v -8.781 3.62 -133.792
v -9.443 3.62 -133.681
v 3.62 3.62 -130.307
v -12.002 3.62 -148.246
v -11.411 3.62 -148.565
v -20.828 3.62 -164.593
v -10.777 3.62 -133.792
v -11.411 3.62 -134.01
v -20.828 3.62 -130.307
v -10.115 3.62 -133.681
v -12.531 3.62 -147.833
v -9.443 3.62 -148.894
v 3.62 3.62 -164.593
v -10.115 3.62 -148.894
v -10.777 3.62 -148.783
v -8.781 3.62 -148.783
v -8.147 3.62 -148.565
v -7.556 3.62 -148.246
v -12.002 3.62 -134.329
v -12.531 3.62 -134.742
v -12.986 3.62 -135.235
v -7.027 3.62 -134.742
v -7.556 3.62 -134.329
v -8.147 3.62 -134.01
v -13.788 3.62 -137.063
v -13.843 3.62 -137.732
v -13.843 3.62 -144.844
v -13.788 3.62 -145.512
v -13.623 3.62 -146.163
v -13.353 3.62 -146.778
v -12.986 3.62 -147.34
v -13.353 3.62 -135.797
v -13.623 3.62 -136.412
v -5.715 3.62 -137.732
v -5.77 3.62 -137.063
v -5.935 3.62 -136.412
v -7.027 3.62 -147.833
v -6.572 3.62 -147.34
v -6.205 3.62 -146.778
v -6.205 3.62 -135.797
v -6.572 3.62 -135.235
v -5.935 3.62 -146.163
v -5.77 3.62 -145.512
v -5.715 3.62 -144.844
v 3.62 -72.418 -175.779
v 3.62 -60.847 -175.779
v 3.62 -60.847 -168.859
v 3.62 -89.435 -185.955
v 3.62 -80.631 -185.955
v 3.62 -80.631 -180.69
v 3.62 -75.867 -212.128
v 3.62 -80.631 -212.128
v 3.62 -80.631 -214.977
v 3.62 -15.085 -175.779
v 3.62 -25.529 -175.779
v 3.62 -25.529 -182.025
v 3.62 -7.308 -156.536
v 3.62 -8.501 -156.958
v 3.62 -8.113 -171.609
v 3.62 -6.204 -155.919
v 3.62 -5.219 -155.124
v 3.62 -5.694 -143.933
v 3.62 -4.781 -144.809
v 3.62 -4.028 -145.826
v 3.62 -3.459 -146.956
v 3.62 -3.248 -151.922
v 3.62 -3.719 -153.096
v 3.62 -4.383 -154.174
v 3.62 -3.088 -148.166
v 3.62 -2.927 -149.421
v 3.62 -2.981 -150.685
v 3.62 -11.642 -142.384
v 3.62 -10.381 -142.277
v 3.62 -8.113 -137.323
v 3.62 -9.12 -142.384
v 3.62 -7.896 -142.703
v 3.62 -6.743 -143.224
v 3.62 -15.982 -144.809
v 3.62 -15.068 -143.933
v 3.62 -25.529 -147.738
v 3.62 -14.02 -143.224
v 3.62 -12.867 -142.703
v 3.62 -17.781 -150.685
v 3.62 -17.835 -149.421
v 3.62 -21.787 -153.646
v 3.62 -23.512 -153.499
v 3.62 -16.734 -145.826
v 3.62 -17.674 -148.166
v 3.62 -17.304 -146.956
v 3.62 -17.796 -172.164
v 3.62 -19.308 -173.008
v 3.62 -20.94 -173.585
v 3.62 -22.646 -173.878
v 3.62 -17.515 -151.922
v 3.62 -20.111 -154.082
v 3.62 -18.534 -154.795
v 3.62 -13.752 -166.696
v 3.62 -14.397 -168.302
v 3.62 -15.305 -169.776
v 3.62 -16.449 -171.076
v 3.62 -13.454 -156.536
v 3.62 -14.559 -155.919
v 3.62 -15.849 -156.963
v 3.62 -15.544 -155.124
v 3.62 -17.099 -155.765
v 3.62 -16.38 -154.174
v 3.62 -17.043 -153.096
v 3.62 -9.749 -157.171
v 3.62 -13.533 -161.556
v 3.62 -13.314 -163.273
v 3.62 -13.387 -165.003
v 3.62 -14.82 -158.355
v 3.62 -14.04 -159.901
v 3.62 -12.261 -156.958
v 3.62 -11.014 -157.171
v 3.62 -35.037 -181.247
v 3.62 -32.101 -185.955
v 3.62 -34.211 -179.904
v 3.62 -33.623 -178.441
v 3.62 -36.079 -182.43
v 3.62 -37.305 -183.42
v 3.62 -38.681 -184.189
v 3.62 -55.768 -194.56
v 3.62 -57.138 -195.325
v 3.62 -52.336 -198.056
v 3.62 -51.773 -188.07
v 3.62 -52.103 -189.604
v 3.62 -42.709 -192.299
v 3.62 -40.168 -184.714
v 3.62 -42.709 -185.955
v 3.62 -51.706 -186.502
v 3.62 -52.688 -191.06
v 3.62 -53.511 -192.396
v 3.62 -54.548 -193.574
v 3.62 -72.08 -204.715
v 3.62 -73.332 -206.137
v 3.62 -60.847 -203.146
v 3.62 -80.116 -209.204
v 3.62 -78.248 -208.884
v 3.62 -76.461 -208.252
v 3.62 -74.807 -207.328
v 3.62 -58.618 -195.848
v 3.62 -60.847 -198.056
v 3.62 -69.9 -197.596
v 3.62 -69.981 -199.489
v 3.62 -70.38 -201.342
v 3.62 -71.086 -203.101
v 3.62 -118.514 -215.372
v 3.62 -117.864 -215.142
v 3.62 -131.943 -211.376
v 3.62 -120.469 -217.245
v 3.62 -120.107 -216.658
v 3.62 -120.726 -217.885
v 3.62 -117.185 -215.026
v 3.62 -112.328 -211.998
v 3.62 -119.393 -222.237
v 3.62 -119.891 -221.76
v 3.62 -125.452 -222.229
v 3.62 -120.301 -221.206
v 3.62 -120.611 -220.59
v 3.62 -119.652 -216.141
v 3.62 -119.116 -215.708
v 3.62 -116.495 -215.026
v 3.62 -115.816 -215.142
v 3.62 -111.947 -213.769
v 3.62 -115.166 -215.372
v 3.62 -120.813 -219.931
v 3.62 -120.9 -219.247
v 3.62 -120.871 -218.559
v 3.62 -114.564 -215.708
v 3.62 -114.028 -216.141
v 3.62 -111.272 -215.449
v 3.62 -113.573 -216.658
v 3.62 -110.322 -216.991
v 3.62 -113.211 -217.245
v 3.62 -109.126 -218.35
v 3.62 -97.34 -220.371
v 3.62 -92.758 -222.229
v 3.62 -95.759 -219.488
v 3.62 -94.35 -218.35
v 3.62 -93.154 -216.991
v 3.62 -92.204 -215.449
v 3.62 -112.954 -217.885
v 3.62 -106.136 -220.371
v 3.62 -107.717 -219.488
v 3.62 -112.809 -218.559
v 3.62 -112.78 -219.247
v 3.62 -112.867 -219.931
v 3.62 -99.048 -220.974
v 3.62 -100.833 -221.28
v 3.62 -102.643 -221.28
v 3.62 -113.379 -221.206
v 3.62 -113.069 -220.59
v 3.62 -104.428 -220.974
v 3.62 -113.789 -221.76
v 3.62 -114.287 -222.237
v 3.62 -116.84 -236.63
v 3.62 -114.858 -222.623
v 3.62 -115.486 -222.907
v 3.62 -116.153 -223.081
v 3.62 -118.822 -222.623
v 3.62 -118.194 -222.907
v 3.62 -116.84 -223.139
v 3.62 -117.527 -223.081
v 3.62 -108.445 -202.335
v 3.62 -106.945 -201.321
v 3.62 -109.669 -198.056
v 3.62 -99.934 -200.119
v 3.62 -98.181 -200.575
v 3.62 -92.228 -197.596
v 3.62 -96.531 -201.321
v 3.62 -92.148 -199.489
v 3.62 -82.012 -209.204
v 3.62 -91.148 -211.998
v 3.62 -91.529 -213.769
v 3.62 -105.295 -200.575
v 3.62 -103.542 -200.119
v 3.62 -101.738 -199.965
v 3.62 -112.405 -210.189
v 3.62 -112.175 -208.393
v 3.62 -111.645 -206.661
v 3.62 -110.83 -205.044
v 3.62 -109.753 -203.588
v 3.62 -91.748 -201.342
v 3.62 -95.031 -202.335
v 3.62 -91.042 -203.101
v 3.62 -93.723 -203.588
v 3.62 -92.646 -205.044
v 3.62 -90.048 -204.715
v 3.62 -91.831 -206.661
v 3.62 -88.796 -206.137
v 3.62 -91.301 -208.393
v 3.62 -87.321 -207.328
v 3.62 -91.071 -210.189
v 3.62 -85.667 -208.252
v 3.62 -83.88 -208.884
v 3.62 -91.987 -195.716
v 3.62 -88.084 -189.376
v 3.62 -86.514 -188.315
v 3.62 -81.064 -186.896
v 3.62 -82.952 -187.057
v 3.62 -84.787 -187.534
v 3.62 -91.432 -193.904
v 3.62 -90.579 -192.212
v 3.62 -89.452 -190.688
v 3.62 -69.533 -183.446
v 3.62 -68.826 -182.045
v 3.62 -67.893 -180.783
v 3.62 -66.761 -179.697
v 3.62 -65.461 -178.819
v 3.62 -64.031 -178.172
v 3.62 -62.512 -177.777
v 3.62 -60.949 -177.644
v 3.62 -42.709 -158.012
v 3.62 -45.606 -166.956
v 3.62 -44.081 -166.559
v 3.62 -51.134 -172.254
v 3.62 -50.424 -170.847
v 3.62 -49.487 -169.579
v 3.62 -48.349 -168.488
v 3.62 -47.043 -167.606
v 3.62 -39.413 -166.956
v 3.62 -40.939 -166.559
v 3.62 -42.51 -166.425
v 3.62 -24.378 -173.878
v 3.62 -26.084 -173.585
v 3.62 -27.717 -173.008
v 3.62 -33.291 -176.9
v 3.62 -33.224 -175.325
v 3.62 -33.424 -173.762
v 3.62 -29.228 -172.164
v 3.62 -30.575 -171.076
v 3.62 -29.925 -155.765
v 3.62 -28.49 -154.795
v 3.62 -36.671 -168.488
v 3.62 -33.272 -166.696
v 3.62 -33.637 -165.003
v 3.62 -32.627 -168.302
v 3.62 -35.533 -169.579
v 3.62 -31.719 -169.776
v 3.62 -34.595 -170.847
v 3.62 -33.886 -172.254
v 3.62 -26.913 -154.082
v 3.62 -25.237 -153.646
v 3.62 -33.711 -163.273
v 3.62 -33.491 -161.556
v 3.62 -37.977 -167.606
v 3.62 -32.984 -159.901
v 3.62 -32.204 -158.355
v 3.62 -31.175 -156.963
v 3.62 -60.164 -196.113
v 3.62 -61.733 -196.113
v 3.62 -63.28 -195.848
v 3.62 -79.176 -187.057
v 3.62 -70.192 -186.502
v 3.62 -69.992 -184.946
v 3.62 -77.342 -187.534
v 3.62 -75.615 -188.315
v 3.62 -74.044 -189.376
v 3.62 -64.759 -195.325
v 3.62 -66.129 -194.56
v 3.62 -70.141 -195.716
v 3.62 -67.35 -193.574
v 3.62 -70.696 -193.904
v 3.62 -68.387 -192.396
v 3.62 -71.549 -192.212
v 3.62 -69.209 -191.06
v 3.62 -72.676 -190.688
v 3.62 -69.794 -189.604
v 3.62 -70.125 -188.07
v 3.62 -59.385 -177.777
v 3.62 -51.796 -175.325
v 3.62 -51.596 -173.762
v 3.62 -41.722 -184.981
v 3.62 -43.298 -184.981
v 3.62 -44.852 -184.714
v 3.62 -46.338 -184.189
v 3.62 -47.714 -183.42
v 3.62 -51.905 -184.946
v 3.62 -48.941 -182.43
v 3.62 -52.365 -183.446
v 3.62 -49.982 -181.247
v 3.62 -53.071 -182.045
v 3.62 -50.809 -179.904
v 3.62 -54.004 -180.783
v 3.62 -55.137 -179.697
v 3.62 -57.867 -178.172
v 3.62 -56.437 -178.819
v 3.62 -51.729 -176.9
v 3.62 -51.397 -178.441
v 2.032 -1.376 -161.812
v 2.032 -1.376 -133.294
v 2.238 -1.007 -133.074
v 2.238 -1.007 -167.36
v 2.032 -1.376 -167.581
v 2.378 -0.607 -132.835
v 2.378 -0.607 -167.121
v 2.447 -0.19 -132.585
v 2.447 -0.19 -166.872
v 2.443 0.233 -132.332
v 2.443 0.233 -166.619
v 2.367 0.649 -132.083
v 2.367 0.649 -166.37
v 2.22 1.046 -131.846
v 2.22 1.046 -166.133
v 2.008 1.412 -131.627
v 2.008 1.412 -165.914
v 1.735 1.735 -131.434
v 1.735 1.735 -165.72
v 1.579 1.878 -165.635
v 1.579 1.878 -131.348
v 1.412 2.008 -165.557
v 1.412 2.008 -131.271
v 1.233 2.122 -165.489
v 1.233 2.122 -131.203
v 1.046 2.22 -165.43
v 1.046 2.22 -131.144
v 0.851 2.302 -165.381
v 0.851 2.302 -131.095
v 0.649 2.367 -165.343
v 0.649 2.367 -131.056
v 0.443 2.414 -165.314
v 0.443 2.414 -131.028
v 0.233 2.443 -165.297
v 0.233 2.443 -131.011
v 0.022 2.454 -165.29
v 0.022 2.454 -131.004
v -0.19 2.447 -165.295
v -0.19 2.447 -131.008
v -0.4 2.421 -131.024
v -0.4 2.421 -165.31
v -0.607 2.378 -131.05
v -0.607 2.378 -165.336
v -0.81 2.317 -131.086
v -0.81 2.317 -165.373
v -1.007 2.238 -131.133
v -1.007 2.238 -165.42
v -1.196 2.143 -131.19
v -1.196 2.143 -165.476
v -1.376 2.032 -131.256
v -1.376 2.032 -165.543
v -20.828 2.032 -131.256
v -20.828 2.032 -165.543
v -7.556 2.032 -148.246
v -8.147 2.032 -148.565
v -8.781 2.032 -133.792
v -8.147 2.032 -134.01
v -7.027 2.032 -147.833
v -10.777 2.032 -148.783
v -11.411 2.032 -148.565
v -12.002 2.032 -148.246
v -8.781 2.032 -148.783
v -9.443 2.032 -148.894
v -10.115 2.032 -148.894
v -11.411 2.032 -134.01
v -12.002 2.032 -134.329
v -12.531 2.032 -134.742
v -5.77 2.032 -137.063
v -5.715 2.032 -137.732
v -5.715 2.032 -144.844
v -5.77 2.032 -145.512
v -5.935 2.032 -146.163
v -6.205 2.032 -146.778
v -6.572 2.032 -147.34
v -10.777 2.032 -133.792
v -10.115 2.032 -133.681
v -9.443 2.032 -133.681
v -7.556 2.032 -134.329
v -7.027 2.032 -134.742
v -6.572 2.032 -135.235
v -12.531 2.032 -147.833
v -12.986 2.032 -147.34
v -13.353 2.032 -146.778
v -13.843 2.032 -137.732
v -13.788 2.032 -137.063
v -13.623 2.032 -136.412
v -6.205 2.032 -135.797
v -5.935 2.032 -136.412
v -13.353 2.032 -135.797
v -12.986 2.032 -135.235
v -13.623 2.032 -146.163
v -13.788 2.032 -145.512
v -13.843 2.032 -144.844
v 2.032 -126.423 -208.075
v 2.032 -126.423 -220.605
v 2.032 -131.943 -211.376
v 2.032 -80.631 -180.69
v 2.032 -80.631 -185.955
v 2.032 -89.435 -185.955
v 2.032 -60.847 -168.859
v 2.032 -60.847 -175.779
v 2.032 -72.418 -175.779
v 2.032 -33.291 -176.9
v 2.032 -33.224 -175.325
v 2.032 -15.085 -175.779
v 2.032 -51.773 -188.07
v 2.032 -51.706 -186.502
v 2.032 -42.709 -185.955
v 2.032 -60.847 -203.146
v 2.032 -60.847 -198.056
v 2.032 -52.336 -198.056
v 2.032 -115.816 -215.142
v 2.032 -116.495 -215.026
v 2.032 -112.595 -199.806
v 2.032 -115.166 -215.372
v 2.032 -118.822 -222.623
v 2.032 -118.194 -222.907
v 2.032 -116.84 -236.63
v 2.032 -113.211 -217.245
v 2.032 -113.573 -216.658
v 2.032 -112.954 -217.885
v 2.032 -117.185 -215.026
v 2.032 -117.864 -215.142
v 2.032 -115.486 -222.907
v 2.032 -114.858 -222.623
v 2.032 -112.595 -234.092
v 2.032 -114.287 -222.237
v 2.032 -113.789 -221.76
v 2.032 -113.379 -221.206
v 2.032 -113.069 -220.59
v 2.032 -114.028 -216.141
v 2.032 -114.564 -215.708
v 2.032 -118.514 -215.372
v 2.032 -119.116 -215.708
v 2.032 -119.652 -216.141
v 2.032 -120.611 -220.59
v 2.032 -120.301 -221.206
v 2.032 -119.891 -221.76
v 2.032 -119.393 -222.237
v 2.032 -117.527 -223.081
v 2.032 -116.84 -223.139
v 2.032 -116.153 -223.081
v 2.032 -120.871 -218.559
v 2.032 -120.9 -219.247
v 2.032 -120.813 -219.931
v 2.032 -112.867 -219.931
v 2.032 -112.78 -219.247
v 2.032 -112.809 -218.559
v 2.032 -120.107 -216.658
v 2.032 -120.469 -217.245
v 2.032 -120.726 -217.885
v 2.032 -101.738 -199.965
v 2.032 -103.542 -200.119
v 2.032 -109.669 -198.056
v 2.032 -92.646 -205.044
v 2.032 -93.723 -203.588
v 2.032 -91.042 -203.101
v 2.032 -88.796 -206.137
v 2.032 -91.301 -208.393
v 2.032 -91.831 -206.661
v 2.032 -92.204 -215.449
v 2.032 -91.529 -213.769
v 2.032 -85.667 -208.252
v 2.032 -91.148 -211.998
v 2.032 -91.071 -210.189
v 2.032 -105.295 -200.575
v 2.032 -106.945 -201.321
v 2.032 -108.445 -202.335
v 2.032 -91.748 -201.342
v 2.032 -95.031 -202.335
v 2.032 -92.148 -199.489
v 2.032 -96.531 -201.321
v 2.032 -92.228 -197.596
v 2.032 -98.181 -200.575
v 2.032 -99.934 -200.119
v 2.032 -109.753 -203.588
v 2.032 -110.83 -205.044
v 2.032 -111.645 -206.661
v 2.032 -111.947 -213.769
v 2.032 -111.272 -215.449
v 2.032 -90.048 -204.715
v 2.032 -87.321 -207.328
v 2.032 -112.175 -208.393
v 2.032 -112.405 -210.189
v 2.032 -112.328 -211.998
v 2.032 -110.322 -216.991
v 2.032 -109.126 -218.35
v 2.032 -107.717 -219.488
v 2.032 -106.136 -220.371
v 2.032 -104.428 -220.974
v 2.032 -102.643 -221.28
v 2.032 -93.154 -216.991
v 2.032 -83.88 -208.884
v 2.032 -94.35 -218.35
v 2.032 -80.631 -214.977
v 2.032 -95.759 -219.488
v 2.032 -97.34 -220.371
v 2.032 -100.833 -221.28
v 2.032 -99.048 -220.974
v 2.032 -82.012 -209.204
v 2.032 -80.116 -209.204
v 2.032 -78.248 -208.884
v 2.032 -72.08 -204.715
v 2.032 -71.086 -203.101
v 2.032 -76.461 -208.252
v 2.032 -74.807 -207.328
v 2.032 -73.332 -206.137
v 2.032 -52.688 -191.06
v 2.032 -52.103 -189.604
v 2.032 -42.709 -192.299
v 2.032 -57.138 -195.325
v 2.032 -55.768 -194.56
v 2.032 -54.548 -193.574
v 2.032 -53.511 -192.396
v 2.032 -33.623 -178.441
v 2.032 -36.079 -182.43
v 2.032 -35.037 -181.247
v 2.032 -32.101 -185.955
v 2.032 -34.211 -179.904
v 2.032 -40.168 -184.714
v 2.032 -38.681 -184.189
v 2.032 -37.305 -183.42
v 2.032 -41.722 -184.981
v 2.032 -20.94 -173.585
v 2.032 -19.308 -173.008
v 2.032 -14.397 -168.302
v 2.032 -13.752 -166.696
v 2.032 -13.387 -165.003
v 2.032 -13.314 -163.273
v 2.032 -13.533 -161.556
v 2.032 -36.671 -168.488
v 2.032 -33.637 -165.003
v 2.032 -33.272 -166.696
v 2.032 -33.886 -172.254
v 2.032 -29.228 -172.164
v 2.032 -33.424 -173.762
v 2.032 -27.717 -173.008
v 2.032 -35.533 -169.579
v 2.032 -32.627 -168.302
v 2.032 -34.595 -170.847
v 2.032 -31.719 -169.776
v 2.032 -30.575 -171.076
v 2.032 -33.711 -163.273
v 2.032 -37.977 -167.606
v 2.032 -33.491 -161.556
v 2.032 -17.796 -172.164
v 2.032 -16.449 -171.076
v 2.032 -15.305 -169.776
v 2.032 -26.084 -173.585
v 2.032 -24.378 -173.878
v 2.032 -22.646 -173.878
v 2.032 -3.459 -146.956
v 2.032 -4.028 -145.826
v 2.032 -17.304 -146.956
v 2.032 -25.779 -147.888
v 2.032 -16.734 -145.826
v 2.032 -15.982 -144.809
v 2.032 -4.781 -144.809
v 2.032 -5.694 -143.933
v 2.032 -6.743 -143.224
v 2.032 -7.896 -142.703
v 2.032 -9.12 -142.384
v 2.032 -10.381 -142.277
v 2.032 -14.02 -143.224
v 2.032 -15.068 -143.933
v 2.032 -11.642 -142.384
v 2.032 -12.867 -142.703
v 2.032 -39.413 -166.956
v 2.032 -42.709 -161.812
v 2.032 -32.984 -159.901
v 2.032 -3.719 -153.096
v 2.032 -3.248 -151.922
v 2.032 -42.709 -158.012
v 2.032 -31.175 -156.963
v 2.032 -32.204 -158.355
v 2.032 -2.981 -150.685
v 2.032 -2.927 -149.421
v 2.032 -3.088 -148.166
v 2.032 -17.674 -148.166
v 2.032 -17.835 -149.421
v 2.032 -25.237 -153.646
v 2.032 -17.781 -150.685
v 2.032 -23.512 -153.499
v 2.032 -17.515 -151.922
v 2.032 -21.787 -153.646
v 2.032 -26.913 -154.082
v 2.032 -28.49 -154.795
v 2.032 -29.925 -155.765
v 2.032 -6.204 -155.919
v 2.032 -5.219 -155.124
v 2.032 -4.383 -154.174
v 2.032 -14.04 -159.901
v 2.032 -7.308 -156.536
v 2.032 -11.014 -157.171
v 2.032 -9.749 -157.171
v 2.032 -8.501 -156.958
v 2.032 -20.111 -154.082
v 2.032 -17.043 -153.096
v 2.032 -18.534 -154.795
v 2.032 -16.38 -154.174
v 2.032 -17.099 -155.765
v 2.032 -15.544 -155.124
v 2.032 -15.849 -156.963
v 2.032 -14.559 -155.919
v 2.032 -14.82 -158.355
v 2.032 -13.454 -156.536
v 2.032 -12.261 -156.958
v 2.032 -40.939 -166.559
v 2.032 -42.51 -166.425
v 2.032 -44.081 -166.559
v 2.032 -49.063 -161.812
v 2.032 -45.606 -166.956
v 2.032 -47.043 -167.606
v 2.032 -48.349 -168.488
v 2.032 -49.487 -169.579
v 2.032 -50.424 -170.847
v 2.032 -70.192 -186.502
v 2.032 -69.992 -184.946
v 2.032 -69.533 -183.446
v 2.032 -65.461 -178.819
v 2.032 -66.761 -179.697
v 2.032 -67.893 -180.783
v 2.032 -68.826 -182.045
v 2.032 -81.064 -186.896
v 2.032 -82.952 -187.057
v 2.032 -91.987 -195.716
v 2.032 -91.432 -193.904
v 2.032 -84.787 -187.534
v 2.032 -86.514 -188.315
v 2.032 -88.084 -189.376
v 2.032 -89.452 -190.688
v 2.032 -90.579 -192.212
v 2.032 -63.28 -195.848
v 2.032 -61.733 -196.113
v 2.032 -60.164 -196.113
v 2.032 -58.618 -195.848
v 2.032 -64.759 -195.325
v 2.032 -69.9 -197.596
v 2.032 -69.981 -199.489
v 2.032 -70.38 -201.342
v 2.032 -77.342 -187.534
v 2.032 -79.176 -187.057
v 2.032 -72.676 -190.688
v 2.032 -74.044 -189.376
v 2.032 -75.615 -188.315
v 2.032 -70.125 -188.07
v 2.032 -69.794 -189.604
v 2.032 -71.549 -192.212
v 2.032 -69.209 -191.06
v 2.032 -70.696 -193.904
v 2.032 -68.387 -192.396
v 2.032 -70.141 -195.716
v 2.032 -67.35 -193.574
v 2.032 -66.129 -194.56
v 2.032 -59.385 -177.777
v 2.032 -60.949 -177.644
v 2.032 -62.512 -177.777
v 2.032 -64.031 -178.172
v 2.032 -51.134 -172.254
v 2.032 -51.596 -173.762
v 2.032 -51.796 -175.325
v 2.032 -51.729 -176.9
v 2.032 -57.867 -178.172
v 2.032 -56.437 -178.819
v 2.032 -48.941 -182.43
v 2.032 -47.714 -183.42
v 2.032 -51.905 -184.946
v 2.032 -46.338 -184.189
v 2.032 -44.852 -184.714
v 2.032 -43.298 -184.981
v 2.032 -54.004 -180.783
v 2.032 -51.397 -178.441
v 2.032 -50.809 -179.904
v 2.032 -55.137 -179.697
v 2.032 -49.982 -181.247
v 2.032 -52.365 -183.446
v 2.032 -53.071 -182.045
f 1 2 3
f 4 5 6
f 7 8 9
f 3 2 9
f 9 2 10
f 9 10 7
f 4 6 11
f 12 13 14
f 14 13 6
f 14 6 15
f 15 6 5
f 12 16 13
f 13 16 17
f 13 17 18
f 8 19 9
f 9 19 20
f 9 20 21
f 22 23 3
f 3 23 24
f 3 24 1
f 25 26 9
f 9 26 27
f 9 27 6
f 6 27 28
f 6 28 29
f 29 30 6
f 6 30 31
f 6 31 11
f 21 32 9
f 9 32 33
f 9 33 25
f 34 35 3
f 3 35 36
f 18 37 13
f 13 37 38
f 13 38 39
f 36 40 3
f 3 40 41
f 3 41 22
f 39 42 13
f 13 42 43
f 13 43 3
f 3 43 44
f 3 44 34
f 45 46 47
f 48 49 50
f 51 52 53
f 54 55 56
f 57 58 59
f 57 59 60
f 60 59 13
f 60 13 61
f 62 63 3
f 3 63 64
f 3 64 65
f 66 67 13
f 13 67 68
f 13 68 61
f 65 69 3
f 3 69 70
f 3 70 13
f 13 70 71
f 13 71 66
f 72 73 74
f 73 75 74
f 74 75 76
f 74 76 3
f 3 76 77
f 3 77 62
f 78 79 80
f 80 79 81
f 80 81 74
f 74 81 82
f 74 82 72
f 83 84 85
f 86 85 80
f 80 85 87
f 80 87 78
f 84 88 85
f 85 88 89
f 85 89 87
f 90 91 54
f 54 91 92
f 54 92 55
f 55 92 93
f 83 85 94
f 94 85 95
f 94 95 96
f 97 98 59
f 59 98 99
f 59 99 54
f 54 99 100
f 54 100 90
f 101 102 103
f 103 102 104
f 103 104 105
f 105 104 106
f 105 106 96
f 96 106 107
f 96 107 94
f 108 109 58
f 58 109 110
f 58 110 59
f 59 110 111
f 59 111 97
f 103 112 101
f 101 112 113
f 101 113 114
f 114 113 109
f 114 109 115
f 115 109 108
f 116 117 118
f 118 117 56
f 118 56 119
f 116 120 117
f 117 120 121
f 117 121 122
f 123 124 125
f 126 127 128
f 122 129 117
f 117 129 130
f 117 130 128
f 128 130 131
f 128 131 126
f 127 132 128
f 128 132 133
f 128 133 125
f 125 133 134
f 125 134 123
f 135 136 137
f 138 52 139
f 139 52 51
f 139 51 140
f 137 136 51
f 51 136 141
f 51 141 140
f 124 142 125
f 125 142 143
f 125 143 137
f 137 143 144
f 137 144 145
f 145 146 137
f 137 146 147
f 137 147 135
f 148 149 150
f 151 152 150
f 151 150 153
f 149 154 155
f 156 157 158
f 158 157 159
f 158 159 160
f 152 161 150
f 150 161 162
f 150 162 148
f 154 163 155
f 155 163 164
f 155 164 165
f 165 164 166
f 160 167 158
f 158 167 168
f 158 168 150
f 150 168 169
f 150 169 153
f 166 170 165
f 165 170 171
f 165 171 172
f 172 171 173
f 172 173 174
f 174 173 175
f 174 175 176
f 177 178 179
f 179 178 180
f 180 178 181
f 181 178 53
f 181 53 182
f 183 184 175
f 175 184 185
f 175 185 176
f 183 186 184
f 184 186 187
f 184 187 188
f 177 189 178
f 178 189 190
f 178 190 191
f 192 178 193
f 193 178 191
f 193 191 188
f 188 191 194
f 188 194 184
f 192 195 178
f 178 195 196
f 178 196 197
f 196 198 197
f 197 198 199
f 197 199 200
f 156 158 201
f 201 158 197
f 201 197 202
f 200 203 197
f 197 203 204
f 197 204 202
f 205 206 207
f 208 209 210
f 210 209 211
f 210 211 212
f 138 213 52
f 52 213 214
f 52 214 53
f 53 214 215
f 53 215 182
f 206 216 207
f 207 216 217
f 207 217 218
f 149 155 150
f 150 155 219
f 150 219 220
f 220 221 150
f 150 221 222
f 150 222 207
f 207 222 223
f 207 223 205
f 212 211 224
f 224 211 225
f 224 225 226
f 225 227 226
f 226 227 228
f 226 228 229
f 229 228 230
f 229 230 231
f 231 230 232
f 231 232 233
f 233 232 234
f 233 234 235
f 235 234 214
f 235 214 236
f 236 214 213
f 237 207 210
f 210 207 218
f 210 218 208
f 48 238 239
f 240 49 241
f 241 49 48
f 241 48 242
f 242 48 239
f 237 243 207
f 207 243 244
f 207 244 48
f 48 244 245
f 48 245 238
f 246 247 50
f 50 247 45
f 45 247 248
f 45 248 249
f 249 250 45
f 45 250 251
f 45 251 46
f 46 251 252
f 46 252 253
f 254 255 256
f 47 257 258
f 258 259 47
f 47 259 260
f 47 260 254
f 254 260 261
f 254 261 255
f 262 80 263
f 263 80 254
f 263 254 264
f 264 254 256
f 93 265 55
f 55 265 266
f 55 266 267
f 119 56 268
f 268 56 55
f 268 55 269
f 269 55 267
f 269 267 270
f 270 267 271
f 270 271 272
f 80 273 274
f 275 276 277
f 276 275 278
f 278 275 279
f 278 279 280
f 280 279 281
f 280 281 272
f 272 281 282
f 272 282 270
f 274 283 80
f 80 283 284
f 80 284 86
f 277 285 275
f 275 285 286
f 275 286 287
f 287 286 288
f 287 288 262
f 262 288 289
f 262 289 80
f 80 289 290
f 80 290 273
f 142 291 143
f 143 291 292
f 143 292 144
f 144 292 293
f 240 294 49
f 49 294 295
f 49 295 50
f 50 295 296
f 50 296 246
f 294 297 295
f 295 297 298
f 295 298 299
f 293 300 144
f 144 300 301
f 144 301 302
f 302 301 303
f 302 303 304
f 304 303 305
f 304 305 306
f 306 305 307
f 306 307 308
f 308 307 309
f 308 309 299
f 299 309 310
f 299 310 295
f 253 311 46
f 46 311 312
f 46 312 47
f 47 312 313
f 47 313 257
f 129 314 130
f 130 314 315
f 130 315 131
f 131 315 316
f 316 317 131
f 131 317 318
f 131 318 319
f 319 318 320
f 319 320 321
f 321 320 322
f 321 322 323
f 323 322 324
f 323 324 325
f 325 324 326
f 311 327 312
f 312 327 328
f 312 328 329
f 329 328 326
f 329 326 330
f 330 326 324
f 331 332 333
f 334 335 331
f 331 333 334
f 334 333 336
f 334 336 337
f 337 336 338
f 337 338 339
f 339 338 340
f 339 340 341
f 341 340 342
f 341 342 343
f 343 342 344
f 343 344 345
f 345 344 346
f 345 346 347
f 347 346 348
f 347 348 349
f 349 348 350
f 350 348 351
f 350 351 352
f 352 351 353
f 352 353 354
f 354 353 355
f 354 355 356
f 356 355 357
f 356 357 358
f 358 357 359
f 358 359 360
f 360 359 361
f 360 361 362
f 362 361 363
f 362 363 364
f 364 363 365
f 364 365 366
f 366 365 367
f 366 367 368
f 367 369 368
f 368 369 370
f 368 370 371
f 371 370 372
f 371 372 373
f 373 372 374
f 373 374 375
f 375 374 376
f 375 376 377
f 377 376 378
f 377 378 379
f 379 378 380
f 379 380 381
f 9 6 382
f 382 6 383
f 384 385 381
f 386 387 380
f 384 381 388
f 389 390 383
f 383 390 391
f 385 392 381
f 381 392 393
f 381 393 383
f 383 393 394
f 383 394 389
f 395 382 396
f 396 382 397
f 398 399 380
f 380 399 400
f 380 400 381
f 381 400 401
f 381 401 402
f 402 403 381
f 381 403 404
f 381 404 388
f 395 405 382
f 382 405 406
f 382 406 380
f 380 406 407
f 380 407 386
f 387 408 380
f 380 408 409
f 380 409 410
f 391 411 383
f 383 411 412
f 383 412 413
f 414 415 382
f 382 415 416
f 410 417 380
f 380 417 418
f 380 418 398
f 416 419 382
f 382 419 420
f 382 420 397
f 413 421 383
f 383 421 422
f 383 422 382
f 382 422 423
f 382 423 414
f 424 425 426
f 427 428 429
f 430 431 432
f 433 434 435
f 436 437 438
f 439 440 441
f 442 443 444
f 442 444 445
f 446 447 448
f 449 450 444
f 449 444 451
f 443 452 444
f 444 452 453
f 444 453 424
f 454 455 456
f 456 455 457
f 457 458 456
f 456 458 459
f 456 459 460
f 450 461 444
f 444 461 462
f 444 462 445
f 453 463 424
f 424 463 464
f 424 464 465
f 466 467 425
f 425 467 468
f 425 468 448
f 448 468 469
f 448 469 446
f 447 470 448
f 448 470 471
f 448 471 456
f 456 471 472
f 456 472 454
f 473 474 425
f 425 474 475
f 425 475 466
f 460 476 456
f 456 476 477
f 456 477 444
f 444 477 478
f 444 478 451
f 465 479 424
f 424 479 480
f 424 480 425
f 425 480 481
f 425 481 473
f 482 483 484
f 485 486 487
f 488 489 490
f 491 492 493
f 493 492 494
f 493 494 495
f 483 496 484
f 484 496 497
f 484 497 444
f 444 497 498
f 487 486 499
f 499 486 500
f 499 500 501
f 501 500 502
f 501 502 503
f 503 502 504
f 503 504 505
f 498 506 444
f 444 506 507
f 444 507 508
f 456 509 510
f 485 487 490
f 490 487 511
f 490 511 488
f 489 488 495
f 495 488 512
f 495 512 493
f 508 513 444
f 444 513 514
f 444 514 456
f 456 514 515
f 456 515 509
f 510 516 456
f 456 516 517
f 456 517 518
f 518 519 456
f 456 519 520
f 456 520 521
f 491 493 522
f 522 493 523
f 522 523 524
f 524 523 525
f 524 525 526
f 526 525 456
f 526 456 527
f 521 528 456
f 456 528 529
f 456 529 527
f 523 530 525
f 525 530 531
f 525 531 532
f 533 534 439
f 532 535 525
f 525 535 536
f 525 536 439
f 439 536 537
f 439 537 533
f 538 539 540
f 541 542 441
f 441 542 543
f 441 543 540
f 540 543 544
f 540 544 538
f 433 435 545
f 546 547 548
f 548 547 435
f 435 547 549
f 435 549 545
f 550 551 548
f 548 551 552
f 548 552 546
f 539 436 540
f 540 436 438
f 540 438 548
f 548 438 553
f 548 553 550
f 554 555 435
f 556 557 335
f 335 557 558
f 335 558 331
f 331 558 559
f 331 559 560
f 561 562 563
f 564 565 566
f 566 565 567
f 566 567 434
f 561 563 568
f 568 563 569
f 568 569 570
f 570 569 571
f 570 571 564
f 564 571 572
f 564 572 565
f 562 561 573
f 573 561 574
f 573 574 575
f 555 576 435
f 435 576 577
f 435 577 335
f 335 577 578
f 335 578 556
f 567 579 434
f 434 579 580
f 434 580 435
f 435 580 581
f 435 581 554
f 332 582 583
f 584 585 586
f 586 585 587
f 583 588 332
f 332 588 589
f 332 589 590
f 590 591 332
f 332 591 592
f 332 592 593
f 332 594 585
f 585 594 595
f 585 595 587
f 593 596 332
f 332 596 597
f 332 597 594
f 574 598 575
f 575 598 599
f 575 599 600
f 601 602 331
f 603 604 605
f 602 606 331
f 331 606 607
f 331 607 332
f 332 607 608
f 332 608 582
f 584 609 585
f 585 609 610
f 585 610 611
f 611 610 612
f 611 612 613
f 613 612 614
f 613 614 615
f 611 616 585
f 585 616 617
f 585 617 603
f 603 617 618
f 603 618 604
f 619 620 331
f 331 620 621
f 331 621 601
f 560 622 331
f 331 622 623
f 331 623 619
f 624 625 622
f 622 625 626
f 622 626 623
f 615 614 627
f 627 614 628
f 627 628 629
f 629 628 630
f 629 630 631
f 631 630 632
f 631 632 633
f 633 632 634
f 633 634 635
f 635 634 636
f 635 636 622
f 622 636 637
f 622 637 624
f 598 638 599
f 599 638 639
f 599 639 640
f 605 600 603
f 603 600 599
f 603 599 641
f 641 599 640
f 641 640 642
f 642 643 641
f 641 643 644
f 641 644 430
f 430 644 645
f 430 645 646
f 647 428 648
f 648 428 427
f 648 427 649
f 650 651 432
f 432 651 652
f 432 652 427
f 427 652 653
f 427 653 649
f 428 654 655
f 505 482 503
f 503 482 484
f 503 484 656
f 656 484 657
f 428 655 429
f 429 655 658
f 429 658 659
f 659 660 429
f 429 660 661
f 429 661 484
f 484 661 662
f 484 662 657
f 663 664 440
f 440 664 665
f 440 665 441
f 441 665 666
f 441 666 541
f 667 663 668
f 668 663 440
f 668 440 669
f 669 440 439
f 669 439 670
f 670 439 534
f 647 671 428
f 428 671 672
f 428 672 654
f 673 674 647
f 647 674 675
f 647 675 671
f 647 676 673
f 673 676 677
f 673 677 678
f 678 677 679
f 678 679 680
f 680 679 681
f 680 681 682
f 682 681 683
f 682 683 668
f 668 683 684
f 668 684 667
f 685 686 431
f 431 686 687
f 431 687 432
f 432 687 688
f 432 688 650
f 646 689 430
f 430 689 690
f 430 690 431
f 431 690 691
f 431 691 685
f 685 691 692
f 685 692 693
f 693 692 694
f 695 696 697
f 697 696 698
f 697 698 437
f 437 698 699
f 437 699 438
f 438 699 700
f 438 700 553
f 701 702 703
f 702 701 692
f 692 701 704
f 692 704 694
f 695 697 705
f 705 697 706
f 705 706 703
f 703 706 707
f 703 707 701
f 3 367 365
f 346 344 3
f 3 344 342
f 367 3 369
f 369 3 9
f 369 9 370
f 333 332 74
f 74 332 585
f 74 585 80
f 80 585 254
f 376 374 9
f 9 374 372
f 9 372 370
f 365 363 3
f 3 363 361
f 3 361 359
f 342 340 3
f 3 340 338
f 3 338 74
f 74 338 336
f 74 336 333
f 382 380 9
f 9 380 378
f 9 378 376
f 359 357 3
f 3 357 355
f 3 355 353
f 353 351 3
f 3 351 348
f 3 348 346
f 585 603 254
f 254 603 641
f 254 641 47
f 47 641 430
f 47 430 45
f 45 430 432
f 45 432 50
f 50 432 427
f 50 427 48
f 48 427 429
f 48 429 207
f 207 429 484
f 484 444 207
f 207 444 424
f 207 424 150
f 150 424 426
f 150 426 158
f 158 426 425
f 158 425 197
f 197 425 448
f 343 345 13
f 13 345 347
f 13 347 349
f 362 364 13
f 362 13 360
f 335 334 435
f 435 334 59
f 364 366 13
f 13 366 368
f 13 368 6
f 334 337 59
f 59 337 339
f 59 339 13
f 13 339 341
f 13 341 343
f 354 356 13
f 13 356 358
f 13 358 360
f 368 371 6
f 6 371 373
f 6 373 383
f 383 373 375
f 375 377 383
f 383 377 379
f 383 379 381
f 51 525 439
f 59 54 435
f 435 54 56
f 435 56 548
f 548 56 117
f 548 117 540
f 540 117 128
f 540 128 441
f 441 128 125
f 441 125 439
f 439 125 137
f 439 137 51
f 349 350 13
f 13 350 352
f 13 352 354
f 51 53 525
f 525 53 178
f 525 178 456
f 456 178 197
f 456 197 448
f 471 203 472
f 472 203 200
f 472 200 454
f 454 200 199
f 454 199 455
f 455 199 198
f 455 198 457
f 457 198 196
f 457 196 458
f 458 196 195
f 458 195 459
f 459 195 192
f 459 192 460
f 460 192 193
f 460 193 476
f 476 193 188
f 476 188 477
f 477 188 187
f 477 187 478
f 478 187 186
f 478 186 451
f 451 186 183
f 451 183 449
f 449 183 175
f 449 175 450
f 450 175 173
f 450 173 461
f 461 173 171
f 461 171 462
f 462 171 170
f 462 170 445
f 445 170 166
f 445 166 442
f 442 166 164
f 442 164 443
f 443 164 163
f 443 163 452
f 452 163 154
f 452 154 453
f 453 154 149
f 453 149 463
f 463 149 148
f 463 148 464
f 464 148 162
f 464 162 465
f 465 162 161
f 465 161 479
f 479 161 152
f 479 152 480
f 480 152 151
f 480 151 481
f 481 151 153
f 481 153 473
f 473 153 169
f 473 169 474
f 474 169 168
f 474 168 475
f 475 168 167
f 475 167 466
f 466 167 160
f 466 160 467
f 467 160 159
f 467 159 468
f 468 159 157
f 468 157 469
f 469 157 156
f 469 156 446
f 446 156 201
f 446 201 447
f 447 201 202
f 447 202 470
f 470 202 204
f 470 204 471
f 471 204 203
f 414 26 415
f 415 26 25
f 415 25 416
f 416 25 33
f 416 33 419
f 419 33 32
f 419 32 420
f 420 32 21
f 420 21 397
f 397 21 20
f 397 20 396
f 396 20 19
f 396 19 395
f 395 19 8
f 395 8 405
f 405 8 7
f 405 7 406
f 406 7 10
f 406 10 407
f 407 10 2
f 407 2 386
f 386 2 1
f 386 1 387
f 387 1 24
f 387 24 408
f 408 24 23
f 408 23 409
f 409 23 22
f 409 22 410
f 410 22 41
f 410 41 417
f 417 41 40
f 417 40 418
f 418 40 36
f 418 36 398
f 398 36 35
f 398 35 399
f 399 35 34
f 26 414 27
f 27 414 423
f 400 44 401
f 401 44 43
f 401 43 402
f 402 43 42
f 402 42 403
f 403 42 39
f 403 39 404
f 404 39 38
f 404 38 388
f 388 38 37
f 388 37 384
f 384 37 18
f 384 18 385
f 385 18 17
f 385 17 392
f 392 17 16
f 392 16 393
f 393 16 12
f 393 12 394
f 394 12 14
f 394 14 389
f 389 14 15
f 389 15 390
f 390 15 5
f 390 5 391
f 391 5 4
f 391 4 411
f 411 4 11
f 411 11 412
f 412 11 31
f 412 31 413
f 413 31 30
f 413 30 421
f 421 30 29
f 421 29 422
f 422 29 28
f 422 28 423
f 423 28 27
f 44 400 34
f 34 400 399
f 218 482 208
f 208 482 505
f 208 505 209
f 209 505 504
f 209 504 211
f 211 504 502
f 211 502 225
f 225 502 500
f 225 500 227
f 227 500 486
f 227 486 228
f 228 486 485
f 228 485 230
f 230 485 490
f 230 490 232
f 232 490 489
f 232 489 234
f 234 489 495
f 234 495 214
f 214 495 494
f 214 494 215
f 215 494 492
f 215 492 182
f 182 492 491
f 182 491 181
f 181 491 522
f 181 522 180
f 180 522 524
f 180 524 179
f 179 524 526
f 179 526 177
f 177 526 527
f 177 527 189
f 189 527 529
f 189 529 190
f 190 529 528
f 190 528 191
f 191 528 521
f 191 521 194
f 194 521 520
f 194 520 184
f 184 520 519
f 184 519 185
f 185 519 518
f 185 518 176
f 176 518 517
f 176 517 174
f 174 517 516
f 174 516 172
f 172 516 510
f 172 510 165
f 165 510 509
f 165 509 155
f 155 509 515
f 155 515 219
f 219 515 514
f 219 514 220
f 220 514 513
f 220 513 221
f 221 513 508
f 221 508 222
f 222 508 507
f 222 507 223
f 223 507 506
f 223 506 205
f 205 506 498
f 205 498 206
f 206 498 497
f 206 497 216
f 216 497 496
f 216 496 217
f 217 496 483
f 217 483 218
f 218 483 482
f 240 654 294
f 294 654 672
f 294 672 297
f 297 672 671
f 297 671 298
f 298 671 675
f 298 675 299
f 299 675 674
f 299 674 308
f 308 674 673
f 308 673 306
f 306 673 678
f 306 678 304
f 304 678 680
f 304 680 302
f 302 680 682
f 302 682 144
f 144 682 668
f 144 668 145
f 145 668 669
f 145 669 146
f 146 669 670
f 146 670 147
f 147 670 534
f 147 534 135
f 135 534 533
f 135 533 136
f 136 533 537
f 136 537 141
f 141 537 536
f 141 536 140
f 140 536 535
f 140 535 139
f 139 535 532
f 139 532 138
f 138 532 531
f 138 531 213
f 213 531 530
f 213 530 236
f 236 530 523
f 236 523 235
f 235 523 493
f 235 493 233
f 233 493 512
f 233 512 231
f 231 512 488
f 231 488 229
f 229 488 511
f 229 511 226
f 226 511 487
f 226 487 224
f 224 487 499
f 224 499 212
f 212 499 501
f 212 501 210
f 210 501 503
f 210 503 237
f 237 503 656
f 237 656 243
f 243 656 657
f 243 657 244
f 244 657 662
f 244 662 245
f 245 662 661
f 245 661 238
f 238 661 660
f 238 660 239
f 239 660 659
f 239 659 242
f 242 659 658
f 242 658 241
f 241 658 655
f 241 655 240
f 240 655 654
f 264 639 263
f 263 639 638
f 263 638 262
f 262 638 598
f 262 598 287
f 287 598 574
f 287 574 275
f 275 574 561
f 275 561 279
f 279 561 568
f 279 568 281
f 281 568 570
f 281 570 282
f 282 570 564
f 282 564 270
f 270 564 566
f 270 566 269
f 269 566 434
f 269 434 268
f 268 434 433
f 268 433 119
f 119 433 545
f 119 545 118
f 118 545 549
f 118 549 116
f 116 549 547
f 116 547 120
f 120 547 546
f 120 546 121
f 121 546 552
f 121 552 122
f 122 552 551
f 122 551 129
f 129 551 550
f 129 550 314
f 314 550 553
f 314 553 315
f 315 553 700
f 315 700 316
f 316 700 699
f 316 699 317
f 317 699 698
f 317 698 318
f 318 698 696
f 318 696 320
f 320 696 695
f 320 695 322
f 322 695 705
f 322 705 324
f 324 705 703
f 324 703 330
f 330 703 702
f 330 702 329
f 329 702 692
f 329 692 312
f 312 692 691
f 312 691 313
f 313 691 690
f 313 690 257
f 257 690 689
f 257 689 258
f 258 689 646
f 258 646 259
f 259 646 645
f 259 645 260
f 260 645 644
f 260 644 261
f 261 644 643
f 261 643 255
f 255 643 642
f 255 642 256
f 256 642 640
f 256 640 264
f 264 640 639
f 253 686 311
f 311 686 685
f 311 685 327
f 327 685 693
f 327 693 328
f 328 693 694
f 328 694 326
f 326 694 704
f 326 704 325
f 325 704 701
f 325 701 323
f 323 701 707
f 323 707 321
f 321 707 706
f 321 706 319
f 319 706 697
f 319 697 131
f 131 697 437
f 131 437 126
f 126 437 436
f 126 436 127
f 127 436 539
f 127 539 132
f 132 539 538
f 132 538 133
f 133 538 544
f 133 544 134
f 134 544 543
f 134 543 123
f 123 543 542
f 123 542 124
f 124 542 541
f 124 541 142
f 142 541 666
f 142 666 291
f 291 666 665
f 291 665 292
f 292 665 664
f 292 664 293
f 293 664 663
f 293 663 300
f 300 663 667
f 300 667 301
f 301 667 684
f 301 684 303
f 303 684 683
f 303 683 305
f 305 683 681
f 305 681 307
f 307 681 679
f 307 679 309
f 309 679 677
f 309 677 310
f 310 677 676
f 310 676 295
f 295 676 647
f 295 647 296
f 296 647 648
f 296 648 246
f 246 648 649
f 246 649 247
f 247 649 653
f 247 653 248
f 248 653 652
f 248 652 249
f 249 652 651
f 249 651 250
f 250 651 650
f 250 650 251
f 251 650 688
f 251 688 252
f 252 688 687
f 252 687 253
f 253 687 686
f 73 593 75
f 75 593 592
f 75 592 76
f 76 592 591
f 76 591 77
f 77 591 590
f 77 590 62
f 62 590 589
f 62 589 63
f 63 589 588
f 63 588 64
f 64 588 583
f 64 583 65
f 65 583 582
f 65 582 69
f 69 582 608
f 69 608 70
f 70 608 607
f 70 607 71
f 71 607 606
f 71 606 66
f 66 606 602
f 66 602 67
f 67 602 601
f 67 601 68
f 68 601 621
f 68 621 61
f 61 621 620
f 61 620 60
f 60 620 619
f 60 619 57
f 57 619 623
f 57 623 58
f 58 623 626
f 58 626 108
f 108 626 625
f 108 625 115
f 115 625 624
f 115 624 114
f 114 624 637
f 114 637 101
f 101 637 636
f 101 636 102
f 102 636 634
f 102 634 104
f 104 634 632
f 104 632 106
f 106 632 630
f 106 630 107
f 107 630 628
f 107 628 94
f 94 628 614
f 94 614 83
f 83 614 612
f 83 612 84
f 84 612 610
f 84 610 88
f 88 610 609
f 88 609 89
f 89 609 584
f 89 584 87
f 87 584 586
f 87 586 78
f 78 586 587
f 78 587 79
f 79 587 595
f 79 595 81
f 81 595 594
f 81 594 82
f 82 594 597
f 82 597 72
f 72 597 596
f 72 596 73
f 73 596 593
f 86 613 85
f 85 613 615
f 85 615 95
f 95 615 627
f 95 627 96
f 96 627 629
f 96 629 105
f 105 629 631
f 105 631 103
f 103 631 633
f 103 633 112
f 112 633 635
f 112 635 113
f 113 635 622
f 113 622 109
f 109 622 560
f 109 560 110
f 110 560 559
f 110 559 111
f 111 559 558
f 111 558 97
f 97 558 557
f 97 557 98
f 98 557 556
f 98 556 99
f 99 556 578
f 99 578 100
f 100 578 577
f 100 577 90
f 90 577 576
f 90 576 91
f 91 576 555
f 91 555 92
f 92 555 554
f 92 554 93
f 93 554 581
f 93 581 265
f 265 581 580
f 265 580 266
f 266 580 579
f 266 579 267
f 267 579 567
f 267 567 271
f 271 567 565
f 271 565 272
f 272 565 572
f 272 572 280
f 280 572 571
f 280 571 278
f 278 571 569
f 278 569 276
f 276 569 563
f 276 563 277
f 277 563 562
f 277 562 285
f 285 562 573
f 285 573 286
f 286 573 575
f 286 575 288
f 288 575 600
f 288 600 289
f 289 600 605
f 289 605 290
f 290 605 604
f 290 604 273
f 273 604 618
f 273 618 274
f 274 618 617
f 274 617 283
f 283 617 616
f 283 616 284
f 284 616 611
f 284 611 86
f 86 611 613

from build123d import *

# Parameters (mm, degrees)
SKETCH1_R                = 4.064
BOSS_EXTRUDE1_DEPTH      = 2.032
SKETCH2_R                = 4.064
BOSS_EXTRUDE2_DEPTH      = 2.032
FILLET1_R                = 2.032
BOSS_EXTRUDE3_DEPTH      = 58.42
BOSS_EXTRUDE3_DEPTH_BACK = 239.395
CUT_EXTRUDE1_DEPTH       = 1
CUT_EXTRUDE1_DEPTH_BACK  = 483.6
CUT_EXTRUDE2_DEPTH       = 25.4475
SKETCH7_R                = 4.064
CUT_EXTRUDE3_DEPTH       = 25.4475
SKETCH8_R                = 4.064
CUT_EXTRUDE4_DEPTH       = 136.562269206
SKETCH10_R               = 10.67677981
SKETCH10_R_2             = 9.251177106
SKETCH10_R_3             = 9.294395921
SKETCH10_R_4             = 10.207707861
SKETCH10_R_5             = 7.460626698
SKETCH10_R_6             = 11.174016497
CUT_EXTRUDE5_DEPTH       = 2.5875


with BuildPart() as part:
    # Sketch1 → Boss-Extrude1 (new body)
    with BuildSketch(Plane(origin=(0, 0, 0), x_dir=(0, 0, -1), z_dir=(1, 0, 0))):
        Polygon((-193.675, 0), (193.675, 0), (239.395, -132.715), (239.395, -161.29), (-243.205, -161.29), (-243.205, -132.715), align=None)
        with Locations((219.075, -116.84)):
            Circle(SKETCH1_R, mode=Mode.SUBTRACT)
    extrude(amount=BOSS_EXTRUDE1_DEPTH)

    # Sketch2 → Boss-Extrude2 (add)
    with BuildSketch(Plane(origin=(0, 0, 0), x_dir=(1, 0, 0), z_dir=(0, 1, 0))):
        Polygon((2.032, -193.675), (2.032, 193.675), (0, 193.675), (-20.828, 165.1), (-20.828, -165.1), (0, -193.675), align=None)
        with Locations((-9.779, -32.7025)):
            Circle(SKETCH2_R, mode=Mode.SUBTRACT)
        with BuildLine():
            Line((-13.843, 144.8435), (-13.843, 137.7315))
            ThreePointArc((-13.843, 137.7315), (-9.779, 133.6675), (-5.715, 137.7315))
            Line((-5.715, 137.7315), (-5.715, 144.8435))
            ThreePointArc((-5.715, 144.8435), (-9.779, 148.9075), (-13.843, 144.8435))
        make_face(mode=Mode.SUBTRACT)
    extrude(amount=BOSS_EXTRUDE2_DEPTH)

    # Fillet1
    fillet1_edges = [part.edges().sort_by_distance(p)[0] for p in [
        (2.032, 2.032, 0),
    ]]
    fillet(fillet1_edges, radius=FILLET1_R)

    # Sketch3 → Boss-Extrude3 (add, two sides)
    with BuildSketch(Plane.XY) as boss_extrude3_sk:
        with BuildLine():
            Line((-1.376033354, 2.032), (-20.828, 2.032))
            Line((-20.828, 2.032), (-20.828, 3.6195))
            Line((-20.828, 3.6195), (3.6195, 3.6195))
            Line((3.6195, 3.6195), (3.6195, -161.29))
            Line((3.6195, -161.29), (2.032, -161.29))
            Line((2.032, -161.29), (2.032, -132.715))
            Line((2.032, -132.715), (2.032, -1.376033354))
            ThreePointArc((2.032, -1.376033354), (1.735294181, 1.735294181), (-1.376033354, 2.032))
        make_face()
    extrude(amount=BOSS_EXTRUDE3_DEPTH)
    extrude(boss_extrude3_sk.sketch, amount=-BOSS_EXTRUDE3_DEPTH_BACK)

    # Sketch4 → Cut-Extrude1 (cut, two sides)
    with BuildSketch(Plane(origin=(0, 0, -239.395), x_dir=(-1, 0, 0), z_dir=(0, 0, -1))) as cut_extrude1_sk:
        with BuildLine():
            Line((0, -161.29), (44.263147165, -161.29))
            Line((44.263147165, -161.29), (44.263147165, 7.390927462))
            Line((44.263147165, 7.390927462), (27.636319643, 7.390927462))
            Line((27.636319643, 7.390927462), (27.636319643, 2.032))
            Line((27.636319643, 2.032), (1.376033354, 2.032))
            ThreePointArc((1.376033354, 2.032), (-1.735294181, 1.735294181), (-2.032, -1.376033354))
            Line((-2.032, -1.376033354), (-2.032, -132.715))
            Line((-2.032, -132.715), (-2.032, -161.29))
            Line((-2.032, -161.29), (0, -161.29))
        make_face()
    extrude(amount=CUT_EXTRUDE1_DEPTH, mode=Mode.SUBTRACT)
    extrude(cut_extrude1_sk.sketch, amount=-CUT_EXTRUDE1_DEPTH_BACK, mode=Mode.SUBTRACT)

    # Sketch6 → Cut-Extrude2 (cut, through all)
    with BuildSketch(Plane(origin=(3.6195, 0, 0), x_dir=(0, 0, -1), z_dir=(1, 0, 0))):
        Polygon((164.593410128, 3.6195), (236.630427362, -116.84), (211.375744463, -131.942769206), (130.306990873, 3.6195), (-58.42, 3.6195), (-58.42, -161.29), (239.395, -161.29), (239.395, 3.6195), align=None)
    extrude(amount=-CUT_EXTRUDE2_DEPTH, mode=Mode.SUBTRACT)

    # Sketch7 → Cut-Extrude3 (cut, through all)
    with BuildSketch(Plane(origin=(3.6195, 0, 0), x_dir=(0, 0, -1), z_dir=(1, 0, 0))):
        with Locations((219.075, -116.84)):
            Circle(SKETCH7_R)
    extrude(amount=-CUT_EXTRUDE3_DEPTH, mode=Mode.SUBTRACT)

    # Sketch8 → Cut-Extrude4 (cut, through all)
    with BuildSketch(Plane(origin=(0, 3.6195, 0), x_dir=(1, 0, 0), z_dir=(0, 1, 0))):
        with Locations((-9.779, -32.7025)):
            Circle(SKETCH8_R)
        with BuildLine():
            Line((-13.843, 144.8435), (-13.843, 137.7315))
            ThreePointArc((-13.843, 137.7315), (-9.779, 133.6675), (-5.715, 137.7315))
            Line((-5.715, 137.7315), (-5.715, 144.8435))
            ThreePointArc((-5.715, 144.8435), (-9.779, 148.9075), (-13.843, 144.8435))
        make_face()
    extrude(amount=-CUT_EXTRUDE4_DEPTH, mode=Mode.SUBTRACT)

    # Sketch10 → Cut-Extrude5 (cut, through all)
    with BuildSketch(Plane.ZY.offset(-2.032)):
        with Locations((-210.642167036, -101.738031393)):
            Circle(SKETCH10_R)
        with Locations((-186.895001779, -60.948782833)):
            Circle(SKETCH10_R_2)
        with Locations((-175.719865187, -42.509807457)):
            Circle(SKETCH10_R_3)
        with Locations((-163.706593351, -23.512075251)):
            Circle(SKETCH10_R_4)
        with Locations((-149.737672611, -10.381289755)):
            Circle(SKETCH10_R_5)
        with Locations((-198.07013837, -81.064028698)):
            Circle(SKETCH10_R_6)
    extrude(amount=-CUT_EXTRUDE5_DEPTH, mode=Mode.SUBTRACT)


solid = part.part
